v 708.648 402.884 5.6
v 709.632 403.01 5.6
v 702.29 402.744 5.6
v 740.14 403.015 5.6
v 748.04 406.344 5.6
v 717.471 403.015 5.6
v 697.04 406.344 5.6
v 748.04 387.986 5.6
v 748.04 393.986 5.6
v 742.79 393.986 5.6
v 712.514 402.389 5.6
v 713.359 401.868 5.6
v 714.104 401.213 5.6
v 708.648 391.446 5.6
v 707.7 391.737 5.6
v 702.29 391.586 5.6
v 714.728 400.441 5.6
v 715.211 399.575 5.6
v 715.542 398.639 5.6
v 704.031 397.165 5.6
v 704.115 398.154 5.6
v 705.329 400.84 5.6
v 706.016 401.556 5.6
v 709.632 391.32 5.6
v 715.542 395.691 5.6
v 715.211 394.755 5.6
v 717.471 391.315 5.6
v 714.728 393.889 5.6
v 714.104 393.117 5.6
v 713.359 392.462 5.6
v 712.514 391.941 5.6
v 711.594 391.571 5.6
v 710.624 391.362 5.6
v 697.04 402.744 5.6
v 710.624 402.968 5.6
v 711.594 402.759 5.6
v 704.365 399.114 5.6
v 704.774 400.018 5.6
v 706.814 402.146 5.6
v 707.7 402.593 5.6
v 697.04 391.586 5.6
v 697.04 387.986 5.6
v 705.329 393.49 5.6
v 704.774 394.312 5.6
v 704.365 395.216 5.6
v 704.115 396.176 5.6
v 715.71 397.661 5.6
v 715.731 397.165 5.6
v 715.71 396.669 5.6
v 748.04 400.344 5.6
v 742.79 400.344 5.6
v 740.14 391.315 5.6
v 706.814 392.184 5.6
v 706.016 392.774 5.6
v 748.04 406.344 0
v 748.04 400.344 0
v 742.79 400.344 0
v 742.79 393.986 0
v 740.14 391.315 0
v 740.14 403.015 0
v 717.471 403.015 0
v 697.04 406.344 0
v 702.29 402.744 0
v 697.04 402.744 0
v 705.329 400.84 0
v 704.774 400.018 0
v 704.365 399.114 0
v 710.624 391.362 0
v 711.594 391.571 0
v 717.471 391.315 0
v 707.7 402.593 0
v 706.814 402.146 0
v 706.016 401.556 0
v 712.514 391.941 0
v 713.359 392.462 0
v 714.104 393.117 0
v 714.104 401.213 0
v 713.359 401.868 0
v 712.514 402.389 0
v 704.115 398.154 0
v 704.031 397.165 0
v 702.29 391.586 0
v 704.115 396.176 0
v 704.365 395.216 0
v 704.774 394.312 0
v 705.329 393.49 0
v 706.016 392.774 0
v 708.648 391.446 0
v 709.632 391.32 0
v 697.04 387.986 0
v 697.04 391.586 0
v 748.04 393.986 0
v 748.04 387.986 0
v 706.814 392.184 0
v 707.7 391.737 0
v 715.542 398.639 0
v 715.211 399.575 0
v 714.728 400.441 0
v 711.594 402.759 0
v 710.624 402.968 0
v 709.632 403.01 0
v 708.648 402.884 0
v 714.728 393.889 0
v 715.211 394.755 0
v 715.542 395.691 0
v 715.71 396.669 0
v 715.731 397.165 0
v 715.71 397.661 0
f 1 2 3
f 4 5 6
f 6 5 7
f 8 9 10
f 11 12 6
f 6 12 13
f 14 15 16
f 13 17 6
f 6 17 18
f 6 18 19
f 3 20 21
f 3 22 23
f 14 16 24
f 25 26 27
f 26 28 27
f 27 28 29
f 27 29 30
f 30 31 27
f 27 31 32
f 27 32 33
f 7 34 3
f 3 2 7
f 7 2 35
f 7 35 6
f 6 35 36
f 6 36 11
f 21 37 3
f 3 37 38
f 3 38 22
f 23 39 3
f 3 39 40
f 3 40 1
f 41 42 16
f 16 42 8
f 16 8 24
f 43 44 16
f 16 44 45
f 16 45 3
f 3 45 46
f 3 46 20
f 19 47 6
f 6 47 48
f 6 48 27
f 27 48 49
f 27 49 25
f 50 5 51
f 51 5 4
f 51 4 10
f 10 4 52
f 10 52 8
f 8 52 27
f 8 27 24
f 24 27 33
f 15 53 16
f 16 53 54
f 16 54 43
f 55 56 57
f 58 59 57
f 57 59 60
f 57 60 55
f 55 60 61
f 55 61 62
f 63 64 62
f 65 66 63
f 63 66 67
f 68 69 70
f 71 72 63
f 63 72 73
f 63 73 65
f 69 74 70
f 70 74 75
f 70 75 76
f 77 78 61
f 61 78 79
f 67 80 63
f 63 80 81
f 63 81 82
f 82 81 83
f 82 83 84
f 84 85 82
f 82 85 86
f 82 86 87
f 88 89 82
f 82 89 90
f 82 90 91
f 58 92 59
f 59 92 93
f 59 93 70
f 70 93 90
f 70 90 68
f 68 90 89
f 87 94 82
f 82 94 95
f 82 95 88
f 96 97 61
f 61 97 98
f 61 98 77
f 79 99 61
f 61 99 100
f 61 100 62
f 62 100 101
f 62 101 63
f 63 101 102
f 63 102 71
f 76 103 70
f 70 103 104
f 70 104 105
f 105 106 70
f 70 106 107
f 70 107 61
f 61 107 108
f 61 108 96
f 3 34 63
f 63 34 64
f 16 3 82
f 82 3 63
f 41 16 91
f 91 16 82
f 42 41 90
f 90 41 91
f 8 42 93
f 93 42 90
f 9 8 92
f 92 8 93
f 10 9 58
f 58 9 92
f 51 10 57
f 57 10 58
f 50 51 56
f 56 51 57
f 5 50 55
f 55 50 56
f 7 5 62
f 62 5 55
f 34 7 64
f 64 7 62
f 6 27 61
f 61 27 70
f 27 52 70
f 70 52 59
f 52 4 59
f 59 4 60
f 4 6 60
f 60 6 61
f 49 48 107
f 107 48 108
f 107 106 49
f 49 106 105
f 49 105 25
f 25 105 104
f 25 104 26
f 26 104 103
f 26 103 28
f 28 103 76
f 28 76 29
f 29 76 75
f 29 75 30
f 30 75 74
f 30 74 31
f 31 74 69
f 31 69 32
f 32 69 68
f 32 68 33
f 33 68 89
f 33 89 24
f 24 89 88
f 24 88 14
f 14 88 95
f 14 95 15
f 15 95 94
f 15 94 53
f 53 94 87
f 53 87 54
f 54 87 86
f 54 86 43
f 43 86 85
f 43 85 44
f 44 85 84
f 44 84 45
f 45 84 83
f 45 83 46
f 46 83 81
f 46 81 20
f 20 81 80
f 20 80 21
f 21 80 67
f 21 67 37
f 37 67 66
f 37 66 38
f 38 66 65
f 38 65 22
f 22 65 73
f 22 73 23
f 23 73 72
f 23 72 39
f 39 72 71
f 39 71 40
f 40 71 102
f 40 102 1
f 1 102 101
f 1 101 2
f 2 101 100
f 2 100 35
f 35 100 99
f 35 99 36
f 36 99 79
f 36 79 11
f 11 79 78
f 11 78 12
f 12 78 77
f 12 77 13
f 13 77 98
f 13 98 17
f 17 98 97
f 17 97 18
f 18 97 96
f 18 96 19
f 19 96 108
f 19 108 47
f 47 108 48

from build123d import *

# Parameters (mm, degrees)
SKETCH1_R           = 5.85
SKETCH1_W           = 22.669
SKETCH1_H           = 11.7
BOSS_EXTRUDE1_DEPTH = 5.6


with BuildPart() as part:
    # Sketch1 → Boss-Extrude1 (new body)
    with BuildSketch(Plane.XY):
        Polygon((702.290264671, 402.743983564), (702.290264671, 391.585983564), (697.040264671, 391.585983564), (697.040264671, 387.985983564), (748.040264671, 387.985983564), (748.040264671, 393.985983564), (742.790264671, 393.985983564), (742.790264671, 400.343983564), (748.040264671, 400.343983564), (748.040264671, 406.343983564), (697.040264671, 406.343983564), (697.040264671, 402.743983564), align=None)
        with Locations((709.880764671, 397.164983564)):
            Circle(SKETCH1_R, mode=Mode.SUBTRACT)
        with Locations((728.805764671, 397.164983564)):
            Rectangle(SKETCH1_W, SKETCH1_H, mode=Mode.SUBTRACT)
    extrude(amount=BOSS_EXTRUDE1_DEPTH)


solid = part.part
